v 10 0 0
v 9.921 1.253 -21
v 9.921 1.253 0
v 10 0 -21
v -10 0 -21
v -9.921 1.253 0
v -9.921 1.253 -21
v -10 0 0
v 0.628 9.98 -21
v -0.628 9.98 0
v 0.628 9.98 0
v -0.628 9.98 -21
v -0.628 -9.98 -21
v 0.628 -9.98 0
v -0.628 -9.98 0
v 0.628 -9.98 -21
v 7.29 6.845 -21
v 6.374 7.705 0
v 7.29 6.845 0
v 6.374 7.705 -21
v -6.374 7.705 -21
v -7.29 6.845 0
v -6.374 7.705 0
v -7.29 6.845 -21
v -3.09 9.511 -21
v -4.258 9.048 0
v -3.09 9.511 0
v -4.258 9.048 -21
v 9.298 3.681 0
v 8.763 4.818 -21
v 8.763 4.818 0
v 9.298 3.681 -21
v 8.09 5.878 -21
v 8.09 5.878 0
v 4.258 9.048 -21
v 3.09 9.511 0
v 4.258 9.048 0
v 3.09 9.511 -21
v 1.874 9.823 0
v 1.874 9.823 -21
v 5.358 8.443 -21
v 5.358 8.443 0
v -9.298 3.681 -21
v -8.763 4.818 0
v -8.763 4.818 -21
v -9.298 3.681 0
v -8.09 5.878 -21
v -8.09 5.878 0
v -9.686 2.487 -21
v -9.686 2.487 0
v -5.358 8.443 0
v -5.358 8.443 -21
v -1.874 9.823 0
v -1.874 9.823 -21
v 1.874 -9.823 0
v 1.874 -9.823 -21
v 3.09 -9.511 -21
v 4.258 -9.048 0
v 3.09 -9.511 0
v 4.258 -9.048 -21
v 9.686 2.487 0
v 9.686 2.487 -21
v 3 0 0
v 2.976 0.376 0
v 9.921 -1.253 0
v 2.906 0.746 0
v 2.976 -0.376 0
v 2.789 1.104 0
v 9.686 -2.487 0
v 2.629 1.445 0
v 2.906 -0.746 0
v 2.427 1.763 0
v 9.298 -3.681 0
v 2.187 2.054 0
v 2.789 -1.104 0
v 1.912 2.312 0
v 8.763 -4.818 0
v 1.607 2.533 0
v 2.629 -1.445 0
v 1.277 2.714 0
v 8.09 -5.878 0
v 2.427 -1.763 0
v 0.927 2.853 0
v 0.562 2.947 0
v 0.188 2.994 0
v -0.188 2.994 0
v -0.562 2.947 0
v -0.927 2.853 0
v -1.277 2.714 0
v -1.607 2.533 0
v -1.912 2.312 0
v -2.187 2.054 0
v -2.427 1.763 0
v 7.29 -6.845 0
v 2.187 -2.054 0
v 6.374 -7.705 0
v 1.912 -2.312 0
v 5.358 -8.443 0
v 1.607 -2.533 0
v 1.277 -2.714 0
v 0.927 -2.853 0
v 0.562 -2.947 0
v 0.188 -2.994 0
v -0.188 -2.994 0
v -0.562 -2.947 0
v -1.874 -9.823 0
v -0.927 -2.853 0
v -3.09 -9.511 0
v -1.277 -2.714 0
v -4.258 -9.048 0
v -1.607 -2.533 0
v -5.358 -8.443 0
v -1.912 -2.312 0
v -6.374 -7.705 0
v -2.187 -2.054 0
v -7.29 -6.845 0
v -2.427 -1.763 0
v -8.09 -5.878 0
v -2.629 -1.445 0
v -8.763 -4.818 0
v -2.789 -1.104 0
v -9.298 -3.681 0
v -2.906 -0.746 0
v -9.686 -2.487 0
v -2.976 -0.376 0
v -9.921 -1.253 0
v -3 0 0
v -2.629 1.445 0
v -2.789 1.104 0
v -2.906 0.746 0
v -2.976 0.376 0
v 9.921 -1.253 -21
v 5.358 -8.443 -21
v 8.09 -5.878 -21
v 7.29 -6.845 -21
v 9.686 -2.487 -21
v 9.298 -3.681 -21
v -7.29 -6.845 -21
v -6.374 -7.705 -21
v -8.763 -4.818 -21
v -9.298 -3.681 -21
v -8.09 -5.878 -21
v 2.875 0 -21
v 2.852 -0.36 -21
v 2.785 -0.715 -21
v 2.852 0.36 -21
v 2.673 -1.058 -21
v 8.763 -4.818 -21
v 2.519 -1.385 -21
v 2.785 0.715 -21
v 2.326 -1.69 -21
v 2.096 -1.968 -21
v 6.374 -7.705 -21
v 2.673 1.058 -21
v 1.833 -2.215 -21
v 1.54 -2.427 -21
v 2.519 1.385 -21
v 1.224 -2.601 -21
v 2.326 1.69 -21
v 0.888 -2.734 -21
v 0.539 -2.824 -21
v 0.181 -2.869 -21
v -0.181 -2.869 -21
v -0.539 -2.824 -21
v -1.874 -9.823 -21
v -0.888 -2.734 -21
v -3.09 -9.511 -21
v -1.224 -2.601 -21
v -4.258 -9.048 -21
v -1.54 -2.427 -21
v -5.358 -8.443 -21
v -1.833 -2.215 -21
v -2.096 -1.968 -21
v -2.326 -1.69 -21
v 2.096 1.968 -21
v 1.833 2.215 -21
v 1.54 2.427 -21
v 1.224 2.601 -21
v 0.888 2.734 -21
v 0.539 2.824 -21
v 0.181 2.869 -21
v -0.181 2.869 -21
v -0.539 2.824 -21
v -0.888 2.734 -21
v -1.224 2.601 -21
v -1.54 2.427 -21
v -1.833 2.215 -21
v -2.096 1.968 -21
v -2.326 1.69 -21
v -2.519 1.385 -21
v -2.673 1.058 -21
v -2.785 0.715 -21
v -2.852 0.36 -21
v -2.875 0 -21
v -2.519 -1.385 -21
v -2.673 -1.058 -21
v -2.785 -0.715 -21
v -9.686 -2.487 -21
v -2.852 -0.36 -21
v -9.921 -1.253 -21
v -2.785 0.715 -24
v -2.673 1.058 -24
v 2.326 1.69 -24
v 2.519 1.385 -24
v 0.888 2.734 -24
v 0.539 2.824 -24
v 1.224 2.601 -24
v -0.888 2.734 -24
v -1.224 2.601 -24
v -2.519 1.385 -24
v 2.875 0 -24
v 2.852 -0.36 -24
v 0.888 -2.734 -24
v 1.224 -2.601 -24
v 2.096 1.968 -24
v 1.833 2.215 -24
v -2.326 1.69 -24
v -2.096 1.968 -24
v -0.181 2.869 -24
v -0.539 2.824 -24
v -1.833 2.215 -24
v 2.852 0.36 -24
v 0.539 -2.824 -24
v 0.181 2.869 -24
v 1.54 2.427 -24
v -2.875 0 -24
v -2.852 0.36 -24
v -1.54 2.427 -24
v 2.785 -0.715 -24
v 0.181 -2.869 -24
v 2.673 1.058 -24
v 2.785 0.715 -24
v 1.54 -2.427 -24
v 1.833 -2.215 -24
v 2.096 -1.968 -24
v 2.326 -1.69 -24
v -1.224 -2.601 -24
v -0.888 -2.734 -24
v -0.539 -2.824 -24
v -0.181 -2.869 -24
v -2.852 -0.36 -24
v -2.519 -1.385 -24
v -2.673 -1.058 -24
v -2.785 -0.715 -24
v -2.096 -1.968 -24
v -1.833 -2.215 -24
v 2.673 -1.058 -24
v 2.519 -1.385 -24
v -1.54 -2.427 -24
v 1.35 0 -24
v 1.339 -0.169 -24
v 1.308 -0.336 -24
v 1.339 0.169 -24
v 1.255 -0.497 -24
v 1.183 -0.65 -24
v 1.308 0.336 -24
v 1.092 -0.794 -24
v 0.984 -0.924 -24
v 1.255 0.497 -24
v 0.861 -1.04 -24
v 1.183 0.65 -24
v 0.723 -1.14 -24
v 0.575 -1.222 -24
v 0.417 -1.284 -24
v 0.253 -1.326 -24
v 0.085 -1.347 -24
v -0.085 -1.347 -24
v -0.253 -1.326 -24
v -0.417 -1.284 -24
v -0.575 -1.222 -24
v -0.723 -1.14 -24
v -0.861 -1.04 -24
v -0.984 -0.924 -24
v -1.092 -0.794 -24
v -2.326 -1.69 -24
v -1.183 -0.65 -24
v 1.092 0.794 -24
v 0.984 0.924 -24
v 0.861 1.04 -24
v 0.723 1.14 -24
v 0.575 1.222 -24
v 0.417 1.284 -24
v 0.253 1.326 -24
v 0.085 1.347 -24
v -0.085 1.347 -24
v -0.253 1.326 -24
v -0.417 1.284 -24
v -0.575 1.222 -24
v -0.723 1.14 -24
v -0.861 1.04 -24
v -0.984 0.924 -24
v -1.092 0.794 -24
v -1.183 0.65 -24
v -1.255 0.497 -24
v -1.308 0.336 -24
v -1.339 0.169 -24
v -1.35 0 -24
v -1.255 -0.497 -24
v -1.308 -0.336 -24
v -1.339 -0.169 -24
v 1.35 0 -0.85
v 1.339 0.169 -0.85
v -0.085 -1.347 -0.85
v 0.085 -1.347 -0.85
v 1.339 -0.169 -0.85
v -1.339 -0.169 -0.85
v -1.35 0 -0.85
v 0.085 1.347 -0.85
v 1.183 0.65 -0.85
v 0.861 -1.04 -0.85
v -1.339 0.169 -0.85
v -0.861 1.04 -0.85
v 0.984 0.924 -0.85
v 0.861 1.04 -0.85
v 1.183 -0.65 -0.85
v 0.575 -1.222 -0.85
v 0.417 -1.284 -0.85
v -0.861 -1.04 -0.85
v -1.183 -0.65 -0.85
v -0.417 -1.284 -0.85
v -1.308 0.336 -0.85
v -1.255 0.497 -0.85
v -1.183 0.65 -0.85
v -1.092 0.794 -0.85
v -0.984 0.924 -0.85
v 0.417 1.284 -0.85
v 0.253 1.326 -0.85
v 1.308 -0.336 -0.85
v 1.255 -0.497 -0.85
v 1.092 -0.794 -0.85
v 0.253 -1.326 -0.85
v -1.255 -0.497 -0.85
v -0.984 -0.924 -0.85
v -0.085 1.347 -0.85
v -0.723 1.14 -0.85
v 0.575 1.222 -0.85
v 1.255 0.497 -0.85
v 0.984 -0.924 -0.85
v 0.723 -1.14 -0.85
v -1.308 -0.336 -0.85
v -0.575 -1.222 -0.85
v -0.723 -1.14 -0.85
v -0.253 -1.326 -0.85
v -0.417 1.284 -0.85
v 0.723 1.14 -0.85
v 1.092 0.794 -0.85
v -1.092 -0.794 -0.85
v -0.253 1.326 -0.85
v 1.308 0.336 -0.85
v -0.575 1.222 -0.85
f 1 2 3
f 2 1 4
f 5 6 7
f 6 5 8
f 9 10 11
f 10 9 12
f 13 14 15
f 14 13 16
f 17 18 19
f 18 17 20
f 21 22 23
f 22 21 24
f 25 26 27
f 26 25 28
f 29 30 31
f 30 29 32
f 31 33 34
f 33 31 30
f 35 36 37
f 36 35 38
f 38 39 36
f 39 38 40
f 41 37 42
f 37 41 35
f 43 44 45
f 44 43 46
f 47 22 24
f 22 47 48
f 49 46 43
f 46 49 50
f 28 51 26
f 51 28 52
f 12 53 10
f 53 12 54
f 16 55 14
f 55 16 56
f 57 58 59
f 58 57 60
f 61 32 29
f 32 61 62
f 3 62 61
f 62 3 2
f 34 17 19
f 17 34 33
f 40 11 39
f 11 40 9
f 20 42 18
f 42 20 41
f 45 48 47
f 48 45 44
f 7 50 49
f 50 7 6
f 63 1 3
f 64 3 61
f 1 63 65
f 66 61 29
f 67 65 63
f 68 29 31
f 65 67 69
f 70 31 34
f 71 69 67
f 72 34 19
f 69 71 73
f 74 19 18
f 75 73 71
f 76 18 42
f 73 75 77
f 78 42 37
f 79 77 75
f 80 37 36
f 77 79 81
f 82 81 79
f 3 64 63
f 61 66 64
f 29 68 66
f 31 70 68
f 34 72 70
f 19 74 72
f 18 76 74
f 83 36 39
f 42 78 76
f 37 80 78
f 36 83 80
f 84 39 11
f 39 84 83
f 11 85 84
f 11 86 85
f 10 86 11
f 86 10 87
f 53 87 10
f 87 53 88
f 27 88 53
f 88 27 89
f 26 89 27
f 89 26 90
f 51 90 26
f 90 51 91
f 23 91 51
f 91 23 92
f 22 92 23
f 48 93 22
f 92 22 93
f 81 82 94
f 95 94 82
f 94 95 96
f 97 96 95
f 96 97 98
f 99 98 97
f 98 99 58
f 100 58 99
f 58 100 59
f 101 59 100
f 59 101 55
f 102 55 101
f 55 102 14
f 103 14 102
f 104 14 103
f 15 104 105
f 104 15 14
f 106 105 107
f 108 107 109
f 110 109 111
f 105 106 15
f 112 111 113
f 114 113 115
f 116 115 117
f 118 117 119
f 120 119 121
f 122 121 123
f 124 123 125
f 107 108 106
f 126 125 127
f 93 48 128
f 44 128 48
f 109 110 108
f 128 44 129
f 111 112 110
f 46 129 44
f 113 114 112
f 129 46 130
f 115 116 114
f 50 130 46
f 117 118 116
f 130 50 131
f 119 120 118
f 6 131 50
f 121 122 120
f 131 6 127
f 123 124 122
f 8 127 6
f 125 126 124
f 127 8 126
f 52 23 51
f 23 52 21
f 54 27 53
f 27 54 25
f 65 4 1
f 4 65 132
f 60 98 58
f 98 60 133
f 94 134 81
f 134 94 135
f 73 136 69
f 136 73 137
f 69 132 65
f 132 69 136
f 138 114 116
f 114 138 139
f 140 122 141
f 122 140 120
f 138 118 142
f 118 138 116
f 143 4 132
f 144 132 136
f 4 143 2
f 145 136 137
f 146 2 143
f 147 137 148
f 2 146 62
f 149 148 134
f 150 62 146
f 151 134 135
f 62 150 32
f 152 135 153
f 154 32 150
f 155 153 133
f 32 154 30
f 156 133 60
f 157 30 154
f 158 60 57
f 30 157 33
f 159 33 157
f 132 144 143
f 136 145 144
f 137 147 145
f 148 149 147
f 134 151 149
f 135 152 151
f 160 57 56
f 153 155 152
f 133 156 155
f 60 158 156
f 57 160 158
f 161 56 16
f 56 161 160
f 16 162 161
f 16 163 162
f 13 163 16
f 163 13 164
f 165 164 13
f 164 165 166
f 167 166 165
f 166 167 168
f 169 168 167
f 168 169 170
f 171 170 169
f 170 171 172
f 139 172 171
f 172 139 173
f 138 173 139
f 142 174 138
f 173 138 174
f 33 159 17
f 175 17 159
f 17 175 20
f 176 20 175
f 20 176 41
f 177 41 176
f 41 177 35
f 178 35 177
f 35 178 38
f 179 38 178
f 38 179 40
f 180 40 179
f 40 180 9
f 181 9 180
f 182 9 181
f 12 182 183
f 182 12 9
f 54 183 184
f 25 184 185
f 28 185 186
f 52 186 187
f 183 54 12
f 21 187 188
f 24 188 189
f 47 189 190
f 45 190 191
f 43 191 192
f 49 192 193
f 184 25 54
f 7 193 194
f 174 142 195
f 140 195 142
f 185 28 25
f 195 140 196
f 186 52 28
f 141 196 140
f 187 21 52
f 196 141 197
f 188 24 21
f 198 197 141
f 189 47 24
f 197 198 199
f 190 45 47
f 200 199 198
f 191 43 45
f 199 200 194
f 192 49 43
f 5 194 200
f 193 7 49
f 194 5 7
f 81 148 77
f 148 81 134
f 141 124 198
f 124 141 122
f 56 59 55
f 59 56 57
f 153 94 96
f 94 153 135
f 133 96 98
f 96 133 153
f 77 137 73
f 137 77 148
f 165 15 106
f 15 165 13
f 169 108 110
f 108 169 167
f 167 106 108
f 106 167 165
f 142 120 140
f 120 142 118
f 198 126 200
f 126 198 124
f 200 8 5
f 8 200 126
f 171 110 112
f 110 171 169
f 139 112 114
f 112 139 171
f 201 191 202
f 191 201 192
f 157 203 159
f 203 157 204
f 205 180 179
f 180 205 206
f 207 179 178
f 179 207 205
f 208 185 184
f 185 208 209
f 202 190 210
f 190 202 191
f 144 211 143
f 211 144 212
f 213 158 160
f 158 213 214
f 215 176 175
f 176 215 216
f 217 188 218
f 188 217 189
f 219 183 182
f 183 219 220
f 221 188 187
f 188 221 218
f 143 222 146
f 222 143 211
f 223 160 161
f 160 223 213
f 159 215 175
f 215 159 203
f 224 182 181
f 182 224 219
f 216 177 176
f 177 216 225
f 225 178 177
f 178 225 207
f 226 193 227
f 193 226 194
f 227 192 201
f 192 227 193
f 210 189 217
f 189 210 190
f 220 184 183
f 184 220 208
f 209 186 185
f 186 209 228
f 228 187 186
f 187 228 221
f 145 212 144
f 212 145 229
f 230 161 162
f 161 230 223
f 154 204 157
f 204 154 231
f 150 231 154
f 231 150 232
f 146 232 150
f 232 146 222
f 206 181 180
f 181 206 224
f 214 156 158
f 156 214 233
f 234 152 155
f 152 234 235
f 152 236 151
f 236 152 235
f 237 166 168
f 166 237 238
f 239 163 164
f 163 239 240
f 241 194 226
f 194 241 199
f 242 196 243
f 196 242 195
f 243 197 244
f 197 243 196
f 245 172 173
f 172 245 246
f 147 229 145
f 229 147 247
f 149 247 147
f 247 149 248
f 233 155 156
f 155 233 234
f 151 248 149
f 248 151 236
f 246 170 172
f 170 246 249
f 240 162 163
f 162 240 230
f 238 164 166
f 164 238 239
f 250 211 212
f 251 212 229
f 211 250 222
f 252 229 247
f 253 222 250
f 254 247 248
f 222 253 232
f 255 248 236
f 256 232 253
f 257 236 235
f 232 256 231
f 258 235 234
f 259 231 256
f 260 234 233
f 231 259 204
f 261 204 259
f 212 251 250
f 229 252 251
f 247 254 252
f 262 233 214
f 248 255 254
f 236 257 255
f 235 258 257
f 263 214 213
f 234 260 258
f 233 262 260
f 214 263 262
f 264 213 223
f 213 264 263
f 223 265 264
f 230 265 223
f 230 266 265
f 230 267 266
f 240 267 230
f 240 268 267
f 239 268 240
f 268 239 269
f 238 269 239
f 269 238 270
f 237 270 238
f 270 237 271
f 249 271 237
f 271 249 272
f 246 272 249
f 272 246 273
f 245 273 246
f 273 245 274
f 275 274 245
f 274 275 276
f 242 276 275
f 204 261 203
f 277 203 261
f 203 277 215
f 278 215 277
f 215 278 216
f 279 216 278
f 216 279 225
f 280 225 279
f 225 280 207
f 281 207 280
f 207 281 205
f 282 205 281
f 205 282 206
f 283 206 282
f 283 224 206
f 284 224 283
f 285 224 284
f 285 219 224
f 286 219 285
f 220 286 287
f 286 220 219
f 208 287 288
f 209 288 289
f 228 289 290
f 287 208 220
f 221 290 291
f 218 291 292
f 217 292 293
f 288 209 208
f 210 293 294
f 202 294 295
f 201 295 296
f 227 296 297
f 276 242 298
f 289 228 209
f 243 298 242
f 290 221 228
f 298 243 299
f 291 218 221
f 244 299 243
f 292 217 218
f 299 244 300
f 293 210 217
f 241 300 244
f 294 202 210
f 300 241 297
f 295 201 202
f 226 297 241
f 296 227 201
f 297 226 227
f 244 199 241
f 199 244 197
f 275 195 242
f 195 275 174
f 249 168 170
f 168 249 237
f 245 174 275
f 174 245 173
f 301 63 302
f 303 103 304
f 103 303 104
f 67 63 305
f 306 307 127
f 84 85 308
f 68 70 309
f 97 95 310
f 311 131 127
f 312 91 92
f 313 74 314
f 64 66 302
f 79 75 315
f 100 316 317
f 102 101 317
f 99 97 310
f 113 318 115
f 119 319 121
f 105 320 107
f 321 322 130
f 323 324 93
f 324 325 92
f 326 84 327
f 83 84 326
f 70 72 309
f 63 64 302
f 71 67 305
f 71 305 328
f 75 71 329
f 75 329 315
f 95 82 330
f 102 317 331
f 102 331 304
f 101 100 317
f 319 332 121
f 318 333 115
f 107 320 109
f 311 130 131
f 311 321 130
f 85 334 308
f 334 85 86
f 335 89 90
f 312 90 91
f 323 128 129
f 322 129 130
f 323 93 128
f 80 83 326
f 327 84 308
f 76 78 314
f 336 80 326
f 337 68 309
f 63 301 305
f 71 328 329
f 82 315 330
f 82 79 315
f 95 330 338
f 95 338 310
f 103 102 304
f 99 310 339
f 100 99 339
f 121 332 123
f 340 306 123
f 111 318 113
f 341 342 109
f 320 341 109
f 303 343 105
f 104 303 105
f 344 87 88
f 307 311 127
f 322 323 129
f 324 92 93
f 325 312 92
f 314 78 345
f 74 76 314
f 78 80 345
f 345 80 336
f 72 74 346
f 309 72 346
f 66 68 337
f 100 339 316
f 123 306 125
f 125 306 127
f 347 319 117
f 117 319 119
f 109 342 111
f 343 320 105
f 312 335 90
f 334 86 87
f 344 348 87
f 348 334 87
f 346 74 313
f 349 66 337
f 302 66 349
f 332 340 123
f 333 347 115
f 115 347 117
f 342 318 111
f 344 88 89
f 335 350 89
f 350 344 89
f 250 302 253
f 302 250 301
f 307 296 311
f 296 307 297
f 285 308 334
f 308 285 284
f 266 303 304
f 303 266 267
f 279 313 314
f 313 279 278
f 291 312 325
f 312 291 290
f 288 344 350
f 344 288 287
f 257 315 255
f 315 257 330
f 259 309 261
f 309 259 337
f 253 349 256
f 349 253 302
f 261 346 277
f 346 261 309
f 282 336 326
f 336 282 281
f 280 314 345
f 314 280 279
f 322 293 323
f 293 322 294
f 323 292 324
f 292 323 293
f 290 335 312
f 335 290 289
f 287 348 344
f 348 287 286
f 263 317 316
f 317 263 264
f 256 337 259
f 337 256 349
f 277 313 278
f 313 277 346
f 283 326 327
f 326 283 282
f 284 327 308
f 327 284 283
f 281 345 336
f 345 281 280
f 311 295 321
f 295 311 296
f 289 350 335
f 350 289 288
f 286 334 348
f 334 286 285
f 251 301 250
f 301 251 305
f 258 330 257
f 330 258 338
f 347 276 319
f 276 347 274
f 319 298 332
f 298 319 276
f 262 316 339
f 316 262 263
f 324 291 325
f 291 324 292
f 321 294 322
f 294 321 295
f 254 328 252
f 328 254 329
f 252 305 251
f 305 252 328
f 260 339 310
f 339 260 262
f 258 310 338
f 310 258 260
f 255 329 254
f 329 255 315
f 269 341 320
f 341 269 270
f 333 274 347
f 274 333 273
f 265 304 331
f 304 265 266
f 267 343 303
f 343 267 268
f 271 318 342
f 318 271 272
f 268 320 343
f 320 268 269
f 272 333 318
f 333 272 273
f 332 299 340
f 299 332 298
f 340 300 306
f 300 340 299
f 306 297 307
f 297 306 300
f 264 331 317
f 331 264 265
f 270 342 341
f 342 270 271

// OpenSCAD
$fn = 50;

difference() {
	union() {
		translate(v = [0, 0, -21.0]) {
			cylinder(h = 21, r = 10.0);
		}
		#translate(v = [0, 0, -24.0]) {
			cylinder(h = 24, r = 2.875);
		}
	}
	union() {
		translate(v = [0, 0, 0]) {
			rotate(a = [0, 0, 0]) {
				difference() {
					union() {
						translate(v = [0, 0, -24.0]) {
							cylinder(h = 24, r = 1.0);
						}
						translate(v = [0, 0, -0.85]) {
							cylinder(h = 0.85, r1 = 1.35, r2 = 3.0);
						}
						translate(v = [0, 0, -24.0]) {
							cylinder(h = 24, r = 1.35);
						}
						translate(v = [0, 0, -24.0]) {
							cylinder(h = 24, r = 1.0);
						}
					}
					union();
				}
			}
		}
	}
}
